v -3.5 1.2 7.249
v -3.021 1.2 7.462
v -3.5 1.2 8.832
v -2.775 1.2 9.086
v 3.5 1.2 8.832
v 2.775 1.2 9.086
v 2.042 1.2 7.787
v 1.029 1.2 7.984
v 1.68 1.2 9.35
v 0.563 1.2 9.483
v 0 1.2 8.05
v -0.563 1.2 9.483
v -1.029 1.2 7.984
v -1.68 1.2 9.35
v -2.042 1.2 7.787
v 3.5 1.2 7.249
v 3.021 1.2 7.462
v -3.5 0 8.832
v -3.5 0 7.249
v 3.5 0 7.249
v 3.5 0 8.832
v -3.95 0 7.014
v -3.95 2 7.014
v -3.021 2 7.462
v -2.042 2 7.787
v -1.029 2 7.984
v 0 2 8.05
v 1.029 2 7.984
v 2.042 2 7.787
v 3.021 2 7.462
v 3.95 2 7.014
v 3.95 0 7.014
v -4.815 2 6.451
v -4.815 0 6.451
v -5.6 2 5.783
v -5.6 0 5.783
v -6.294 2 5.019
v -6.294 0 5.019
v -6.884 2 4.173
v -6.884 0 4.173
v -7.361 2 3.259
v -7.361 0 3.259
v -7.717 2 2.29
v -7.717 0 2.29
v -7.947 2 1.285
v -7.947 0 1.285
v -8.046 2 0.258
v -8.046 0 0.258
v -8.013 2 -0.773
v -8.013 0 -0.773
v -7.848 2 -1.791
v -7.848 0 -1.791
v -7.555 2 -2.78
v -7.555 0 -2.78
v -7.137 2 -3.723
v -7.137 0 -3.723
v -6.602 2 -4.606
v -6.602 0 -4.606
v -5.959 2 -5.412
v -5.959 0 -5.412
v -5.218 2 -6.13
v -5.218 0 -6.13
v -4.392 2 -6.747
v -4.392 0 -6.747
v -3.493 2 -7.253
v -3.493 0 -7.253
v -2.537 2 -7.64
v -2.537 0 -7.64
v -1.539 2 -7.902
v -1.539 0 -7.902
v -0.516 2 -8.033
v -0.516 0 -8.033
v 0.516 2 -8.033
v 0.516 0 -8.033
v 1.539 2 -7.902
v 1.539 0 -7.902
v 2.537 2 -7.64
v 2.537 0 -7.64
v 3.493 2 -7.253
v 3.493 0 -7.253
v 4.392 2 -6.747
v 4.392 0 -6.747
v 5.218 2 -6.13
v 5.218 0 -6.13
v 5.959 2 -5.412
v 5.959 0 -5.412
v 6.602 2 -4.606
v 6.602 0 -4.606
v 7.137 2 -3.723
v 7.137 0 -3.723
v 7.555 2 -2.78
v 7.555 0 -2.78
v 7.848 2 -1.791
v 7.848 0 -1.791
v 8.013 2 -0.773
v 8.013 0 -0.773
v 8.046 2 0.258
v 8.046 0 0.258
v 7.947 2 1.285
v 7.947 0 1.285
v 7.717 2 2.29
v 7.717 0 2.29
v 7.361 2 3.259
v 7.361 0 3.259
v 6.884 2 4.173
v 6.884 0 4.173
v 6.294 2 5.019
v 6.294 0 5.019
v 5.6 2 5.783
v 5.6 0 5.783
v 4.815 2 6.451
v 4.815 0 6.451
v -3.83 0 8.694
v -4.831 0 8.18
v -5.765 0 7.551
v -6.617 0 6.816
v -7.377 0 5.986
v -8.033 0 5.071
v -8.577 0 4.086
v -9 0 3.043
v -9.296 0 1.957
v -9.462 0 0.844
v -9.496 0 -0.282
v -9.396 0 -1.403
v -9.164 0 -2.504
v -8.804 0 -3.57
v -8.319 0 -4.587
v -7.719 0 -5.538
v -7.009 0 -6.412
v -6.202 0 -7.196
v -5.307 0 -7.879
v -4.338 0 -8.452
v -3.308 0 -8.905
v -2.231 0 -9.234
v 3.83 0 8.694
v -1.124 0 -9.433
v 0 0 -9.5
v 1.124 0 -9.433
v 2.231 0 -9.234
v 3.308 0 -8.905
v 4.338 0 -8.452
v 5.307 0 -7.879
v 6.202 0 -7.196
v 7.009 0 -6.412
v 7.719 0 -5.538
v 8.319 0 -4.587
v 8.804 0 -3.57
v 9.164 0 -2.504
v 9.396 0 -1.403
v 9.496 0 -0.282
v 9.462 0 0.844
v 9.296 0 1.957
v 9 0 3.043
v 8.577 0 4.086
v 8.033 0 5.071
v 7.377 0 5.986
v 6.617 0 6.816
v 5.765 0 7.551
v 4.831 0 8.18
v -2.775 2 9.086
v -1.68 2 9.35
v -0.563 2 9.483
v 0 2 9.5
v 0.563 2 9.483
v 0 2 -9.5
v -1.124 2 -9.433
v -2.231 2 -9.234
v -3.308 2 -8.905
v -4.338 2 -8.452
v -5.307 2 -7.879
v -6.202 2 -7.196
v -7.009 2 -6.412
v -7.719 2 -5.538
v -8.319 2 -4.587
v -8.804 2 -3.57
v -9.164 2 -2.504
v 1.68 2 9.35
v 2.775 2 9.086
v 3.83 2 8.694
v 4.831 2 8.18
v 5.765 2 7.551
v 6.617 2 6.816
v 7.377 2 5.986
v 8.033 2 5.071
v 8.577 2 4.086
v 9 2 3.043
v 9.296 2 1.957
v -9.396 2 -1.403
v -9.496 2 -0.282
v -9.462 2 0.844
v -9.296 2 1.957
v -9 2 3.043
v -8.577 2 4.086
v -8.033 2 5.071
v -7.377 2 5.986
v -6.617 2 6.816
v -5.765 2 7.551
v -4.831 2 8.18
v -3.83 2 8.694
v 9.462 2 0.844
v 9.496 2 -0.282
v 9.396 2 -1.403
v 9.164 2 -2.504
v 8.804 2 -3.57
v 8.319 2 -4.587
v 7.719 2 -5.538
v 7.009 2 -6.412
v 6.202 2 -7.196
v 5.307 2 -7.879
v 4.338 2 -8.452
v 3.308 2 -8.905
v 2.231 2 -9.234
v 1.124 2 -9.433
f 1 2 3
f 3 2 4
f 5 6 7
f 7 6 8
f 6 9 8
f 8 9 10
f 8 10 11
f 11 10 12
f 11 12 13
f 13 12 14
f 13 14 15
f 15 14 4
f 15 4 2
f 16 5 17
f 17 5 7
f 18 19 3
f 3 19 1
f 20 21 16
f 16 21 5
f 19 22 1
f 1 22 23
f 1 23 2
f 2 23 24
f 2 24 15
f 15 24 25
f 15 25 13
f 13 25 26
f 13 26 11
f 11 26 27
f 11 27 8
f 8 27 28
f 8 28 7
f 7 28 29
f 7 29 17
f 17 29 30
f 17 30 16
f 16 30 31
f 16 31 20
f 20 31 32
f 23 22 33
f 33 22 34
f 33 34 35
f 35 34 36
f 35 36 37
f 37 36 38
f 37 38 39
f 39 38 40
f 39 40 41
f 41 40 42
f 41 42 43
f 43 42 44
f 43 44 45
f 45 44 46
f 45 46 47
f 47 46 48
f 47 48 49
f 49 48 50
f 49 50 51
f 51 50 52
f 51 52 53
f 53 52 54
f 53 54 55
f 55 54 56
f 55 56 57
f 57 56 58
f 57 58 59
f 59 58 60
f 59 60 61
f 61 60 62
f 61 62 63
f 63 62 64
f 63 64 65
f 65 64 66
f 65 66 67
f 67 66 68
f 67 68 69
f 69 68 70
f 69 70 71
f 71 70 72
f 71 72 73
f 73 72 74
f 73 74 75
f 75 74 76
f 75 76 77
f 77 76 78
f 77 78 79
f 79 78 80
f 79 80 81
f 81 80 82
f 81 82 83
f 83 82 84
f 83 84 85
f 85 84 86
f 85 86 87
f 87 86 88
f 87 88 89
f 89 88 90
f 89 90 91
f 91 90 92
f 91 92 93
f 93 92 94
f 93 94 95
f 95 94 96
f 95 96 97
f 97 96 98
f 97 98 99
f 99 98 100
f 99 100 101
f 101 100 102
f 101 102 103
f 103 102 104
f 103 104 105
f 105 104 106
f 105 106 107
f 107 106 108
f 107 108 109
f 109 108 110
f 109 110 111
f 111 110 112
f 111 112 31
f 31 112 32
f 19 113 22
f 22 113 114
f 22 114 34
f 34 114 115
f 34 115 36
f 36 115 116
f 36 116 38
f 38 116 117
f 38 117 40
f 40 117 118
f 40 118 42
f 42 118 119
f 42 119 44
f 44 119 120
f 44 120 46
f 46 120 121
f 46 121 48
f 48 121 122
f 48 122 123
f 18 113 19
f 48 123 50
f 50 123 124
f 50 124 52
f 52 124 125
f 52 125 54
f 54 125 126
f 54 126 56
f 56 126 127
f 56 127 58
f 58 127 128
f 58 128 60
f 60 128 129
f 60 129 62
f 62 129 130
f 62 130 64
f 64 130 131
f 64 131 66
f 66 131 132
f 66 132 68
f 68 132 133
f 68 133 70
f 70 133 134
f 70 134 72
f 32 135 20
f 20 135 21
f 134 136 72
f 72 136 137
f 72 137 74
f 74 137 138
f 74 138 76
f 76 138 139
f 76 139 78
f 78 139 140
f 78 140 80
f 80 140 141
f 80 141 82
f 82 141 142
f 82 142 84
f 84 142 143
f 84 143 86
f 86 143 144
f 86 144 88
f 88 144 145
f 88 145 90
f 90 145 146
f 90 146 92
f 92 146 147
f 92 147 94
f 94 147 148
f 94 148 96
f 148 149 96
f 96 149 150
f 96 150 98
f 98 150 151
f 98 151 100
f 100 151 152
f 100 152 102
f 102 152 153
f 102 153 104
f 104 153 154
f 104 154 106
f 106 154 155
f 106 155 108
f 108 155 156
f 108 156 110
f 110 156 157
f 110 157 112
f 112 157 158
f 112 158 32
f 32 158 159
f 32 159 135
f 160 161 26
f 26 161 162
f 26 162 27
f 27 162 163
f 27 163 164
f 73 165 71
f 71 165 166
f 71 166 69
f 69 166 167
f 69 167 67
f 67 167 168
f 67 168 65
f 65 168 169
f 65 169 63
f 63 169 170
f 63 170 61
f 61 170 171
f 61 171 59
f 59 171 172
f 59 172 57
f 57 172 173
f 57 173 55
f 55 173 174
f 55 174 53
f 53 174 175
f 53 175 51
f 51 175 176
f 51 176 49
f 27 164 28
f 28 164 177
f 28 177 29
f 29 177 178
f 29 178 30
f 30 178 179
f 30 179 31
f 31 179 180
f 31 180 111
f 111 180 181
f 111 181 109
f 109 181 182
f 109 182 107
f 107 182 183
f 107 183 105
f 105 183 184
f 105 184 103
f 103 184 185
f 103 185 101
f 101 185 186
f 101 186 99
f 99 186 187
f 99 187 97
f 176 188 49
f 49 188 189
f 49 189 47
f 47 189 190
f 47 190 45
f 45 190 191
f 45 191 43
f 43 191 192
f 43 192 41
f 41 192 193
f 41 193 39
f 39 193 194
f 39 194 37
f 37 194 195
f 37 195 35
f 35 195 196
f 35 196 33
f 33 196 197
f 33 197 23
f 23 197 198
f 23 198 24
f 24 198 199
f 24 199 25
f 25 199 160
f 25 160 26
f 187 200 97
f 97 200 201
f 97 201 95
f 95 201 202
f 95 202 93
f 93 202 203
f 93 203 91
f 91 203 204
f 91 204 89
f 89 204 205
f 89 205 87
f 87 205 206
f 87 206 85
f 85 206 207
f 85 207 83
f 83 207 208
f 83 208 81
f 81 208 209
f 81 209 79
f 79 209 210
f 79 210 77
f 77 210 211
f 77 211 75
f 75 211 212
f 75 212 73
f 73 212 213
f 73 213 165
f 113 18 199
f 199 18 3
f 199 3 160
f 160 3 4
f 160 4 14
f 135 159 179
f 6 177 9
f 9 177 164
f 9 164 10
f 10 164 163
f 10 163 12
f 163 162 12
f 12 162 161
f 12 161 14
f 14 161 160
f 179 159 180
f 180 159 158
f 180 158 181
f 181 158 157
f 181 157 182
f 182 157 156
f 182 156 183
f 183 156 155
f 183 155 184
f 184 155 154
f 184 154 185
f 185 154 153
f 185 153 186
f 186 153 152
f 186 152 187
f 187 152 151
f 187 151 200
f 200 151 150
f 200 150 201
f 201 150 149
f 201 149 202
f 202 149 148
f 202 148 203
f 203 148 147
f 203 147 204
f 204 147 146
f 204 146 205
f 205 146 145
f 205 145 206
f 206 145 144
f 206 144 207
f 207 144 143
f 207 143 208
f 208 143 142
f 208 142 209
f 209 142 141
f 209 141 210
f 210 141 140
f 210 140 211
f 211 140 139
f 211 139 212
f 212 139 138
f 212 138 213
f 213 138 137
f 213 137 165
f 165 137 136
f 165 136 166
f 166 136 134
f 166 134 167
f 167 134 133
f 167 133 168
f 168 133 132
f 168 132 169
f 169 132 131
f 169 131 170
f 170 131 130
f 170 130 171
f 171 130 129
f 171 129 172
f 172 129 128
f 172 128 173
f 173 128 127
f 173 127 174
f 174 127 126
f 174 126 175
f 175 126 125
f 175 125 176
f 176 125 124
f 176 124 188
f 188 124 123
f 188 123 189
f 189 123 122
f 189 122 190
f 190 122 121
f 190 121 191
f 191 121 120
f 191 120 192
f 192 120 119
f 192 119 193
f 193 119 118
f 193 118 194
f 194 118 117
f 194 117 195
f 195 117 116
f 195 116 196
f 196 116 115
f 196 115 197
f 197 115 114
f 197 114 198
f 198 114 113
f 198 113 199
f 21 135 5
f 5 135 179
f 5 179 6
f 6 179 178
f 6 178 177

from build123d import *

# Parameters (mm, degrees)
SKETCH1_R           = 9.5
BOSS_EXTRUDE1_DEPTH = 2
SKETCH2_R           = 8.05
CUT_EXTRUDE1_DEPTH  = 3
CUT_EXTRUDE2_DEPTH  = 1.2


with BuildPart() as part:
    # Sketch1 → Boss-Extrude1 (new body)
    with BuildSketch(Plane(origin=(0, 0, 0), x_dir=(1, 0, 0), z_dir=(0, 1, 0))):
        Circle(SKETCH1_R)
    extrude(amount=BOSS_EXTRUDE1_DEPTH)

    # Sketch2 → Cut-Extrude1 (cut, through all)
    with BuildSketch(Plane(origin=(0, 2, 0), x_dir=(1, 0, 0), z_dir=(0, 1, 0))):
        Circle(SKETCH2_R)
    extrude(amount=-CUT_EXTRUDE1_DEPTH, mode=Mode.SUBTRACT)

    # Sketch3 → Cut-Extrude2 (cut)
    with BuildSketch(Plane.XZ):
        with BuildLine():
            Line((-3.5, 7.249310312), (-3.5, 8.831760866))
            ThreePointArc((-3.5, 8.831760866), (0, 9.5), (3.5, 8.831760866))
            Line((3.5, 8.831760866), (3.5, 7.249310312))
            ThreePointArc((3.5, 7.249310312), (0, 8.05), (-3.5, 7.249310312))
        make_face()
    extrude(amount=-CUT_EXTRUDE2_DEPTH, mode=Mode.SUBTRACT)


solid = part.part
